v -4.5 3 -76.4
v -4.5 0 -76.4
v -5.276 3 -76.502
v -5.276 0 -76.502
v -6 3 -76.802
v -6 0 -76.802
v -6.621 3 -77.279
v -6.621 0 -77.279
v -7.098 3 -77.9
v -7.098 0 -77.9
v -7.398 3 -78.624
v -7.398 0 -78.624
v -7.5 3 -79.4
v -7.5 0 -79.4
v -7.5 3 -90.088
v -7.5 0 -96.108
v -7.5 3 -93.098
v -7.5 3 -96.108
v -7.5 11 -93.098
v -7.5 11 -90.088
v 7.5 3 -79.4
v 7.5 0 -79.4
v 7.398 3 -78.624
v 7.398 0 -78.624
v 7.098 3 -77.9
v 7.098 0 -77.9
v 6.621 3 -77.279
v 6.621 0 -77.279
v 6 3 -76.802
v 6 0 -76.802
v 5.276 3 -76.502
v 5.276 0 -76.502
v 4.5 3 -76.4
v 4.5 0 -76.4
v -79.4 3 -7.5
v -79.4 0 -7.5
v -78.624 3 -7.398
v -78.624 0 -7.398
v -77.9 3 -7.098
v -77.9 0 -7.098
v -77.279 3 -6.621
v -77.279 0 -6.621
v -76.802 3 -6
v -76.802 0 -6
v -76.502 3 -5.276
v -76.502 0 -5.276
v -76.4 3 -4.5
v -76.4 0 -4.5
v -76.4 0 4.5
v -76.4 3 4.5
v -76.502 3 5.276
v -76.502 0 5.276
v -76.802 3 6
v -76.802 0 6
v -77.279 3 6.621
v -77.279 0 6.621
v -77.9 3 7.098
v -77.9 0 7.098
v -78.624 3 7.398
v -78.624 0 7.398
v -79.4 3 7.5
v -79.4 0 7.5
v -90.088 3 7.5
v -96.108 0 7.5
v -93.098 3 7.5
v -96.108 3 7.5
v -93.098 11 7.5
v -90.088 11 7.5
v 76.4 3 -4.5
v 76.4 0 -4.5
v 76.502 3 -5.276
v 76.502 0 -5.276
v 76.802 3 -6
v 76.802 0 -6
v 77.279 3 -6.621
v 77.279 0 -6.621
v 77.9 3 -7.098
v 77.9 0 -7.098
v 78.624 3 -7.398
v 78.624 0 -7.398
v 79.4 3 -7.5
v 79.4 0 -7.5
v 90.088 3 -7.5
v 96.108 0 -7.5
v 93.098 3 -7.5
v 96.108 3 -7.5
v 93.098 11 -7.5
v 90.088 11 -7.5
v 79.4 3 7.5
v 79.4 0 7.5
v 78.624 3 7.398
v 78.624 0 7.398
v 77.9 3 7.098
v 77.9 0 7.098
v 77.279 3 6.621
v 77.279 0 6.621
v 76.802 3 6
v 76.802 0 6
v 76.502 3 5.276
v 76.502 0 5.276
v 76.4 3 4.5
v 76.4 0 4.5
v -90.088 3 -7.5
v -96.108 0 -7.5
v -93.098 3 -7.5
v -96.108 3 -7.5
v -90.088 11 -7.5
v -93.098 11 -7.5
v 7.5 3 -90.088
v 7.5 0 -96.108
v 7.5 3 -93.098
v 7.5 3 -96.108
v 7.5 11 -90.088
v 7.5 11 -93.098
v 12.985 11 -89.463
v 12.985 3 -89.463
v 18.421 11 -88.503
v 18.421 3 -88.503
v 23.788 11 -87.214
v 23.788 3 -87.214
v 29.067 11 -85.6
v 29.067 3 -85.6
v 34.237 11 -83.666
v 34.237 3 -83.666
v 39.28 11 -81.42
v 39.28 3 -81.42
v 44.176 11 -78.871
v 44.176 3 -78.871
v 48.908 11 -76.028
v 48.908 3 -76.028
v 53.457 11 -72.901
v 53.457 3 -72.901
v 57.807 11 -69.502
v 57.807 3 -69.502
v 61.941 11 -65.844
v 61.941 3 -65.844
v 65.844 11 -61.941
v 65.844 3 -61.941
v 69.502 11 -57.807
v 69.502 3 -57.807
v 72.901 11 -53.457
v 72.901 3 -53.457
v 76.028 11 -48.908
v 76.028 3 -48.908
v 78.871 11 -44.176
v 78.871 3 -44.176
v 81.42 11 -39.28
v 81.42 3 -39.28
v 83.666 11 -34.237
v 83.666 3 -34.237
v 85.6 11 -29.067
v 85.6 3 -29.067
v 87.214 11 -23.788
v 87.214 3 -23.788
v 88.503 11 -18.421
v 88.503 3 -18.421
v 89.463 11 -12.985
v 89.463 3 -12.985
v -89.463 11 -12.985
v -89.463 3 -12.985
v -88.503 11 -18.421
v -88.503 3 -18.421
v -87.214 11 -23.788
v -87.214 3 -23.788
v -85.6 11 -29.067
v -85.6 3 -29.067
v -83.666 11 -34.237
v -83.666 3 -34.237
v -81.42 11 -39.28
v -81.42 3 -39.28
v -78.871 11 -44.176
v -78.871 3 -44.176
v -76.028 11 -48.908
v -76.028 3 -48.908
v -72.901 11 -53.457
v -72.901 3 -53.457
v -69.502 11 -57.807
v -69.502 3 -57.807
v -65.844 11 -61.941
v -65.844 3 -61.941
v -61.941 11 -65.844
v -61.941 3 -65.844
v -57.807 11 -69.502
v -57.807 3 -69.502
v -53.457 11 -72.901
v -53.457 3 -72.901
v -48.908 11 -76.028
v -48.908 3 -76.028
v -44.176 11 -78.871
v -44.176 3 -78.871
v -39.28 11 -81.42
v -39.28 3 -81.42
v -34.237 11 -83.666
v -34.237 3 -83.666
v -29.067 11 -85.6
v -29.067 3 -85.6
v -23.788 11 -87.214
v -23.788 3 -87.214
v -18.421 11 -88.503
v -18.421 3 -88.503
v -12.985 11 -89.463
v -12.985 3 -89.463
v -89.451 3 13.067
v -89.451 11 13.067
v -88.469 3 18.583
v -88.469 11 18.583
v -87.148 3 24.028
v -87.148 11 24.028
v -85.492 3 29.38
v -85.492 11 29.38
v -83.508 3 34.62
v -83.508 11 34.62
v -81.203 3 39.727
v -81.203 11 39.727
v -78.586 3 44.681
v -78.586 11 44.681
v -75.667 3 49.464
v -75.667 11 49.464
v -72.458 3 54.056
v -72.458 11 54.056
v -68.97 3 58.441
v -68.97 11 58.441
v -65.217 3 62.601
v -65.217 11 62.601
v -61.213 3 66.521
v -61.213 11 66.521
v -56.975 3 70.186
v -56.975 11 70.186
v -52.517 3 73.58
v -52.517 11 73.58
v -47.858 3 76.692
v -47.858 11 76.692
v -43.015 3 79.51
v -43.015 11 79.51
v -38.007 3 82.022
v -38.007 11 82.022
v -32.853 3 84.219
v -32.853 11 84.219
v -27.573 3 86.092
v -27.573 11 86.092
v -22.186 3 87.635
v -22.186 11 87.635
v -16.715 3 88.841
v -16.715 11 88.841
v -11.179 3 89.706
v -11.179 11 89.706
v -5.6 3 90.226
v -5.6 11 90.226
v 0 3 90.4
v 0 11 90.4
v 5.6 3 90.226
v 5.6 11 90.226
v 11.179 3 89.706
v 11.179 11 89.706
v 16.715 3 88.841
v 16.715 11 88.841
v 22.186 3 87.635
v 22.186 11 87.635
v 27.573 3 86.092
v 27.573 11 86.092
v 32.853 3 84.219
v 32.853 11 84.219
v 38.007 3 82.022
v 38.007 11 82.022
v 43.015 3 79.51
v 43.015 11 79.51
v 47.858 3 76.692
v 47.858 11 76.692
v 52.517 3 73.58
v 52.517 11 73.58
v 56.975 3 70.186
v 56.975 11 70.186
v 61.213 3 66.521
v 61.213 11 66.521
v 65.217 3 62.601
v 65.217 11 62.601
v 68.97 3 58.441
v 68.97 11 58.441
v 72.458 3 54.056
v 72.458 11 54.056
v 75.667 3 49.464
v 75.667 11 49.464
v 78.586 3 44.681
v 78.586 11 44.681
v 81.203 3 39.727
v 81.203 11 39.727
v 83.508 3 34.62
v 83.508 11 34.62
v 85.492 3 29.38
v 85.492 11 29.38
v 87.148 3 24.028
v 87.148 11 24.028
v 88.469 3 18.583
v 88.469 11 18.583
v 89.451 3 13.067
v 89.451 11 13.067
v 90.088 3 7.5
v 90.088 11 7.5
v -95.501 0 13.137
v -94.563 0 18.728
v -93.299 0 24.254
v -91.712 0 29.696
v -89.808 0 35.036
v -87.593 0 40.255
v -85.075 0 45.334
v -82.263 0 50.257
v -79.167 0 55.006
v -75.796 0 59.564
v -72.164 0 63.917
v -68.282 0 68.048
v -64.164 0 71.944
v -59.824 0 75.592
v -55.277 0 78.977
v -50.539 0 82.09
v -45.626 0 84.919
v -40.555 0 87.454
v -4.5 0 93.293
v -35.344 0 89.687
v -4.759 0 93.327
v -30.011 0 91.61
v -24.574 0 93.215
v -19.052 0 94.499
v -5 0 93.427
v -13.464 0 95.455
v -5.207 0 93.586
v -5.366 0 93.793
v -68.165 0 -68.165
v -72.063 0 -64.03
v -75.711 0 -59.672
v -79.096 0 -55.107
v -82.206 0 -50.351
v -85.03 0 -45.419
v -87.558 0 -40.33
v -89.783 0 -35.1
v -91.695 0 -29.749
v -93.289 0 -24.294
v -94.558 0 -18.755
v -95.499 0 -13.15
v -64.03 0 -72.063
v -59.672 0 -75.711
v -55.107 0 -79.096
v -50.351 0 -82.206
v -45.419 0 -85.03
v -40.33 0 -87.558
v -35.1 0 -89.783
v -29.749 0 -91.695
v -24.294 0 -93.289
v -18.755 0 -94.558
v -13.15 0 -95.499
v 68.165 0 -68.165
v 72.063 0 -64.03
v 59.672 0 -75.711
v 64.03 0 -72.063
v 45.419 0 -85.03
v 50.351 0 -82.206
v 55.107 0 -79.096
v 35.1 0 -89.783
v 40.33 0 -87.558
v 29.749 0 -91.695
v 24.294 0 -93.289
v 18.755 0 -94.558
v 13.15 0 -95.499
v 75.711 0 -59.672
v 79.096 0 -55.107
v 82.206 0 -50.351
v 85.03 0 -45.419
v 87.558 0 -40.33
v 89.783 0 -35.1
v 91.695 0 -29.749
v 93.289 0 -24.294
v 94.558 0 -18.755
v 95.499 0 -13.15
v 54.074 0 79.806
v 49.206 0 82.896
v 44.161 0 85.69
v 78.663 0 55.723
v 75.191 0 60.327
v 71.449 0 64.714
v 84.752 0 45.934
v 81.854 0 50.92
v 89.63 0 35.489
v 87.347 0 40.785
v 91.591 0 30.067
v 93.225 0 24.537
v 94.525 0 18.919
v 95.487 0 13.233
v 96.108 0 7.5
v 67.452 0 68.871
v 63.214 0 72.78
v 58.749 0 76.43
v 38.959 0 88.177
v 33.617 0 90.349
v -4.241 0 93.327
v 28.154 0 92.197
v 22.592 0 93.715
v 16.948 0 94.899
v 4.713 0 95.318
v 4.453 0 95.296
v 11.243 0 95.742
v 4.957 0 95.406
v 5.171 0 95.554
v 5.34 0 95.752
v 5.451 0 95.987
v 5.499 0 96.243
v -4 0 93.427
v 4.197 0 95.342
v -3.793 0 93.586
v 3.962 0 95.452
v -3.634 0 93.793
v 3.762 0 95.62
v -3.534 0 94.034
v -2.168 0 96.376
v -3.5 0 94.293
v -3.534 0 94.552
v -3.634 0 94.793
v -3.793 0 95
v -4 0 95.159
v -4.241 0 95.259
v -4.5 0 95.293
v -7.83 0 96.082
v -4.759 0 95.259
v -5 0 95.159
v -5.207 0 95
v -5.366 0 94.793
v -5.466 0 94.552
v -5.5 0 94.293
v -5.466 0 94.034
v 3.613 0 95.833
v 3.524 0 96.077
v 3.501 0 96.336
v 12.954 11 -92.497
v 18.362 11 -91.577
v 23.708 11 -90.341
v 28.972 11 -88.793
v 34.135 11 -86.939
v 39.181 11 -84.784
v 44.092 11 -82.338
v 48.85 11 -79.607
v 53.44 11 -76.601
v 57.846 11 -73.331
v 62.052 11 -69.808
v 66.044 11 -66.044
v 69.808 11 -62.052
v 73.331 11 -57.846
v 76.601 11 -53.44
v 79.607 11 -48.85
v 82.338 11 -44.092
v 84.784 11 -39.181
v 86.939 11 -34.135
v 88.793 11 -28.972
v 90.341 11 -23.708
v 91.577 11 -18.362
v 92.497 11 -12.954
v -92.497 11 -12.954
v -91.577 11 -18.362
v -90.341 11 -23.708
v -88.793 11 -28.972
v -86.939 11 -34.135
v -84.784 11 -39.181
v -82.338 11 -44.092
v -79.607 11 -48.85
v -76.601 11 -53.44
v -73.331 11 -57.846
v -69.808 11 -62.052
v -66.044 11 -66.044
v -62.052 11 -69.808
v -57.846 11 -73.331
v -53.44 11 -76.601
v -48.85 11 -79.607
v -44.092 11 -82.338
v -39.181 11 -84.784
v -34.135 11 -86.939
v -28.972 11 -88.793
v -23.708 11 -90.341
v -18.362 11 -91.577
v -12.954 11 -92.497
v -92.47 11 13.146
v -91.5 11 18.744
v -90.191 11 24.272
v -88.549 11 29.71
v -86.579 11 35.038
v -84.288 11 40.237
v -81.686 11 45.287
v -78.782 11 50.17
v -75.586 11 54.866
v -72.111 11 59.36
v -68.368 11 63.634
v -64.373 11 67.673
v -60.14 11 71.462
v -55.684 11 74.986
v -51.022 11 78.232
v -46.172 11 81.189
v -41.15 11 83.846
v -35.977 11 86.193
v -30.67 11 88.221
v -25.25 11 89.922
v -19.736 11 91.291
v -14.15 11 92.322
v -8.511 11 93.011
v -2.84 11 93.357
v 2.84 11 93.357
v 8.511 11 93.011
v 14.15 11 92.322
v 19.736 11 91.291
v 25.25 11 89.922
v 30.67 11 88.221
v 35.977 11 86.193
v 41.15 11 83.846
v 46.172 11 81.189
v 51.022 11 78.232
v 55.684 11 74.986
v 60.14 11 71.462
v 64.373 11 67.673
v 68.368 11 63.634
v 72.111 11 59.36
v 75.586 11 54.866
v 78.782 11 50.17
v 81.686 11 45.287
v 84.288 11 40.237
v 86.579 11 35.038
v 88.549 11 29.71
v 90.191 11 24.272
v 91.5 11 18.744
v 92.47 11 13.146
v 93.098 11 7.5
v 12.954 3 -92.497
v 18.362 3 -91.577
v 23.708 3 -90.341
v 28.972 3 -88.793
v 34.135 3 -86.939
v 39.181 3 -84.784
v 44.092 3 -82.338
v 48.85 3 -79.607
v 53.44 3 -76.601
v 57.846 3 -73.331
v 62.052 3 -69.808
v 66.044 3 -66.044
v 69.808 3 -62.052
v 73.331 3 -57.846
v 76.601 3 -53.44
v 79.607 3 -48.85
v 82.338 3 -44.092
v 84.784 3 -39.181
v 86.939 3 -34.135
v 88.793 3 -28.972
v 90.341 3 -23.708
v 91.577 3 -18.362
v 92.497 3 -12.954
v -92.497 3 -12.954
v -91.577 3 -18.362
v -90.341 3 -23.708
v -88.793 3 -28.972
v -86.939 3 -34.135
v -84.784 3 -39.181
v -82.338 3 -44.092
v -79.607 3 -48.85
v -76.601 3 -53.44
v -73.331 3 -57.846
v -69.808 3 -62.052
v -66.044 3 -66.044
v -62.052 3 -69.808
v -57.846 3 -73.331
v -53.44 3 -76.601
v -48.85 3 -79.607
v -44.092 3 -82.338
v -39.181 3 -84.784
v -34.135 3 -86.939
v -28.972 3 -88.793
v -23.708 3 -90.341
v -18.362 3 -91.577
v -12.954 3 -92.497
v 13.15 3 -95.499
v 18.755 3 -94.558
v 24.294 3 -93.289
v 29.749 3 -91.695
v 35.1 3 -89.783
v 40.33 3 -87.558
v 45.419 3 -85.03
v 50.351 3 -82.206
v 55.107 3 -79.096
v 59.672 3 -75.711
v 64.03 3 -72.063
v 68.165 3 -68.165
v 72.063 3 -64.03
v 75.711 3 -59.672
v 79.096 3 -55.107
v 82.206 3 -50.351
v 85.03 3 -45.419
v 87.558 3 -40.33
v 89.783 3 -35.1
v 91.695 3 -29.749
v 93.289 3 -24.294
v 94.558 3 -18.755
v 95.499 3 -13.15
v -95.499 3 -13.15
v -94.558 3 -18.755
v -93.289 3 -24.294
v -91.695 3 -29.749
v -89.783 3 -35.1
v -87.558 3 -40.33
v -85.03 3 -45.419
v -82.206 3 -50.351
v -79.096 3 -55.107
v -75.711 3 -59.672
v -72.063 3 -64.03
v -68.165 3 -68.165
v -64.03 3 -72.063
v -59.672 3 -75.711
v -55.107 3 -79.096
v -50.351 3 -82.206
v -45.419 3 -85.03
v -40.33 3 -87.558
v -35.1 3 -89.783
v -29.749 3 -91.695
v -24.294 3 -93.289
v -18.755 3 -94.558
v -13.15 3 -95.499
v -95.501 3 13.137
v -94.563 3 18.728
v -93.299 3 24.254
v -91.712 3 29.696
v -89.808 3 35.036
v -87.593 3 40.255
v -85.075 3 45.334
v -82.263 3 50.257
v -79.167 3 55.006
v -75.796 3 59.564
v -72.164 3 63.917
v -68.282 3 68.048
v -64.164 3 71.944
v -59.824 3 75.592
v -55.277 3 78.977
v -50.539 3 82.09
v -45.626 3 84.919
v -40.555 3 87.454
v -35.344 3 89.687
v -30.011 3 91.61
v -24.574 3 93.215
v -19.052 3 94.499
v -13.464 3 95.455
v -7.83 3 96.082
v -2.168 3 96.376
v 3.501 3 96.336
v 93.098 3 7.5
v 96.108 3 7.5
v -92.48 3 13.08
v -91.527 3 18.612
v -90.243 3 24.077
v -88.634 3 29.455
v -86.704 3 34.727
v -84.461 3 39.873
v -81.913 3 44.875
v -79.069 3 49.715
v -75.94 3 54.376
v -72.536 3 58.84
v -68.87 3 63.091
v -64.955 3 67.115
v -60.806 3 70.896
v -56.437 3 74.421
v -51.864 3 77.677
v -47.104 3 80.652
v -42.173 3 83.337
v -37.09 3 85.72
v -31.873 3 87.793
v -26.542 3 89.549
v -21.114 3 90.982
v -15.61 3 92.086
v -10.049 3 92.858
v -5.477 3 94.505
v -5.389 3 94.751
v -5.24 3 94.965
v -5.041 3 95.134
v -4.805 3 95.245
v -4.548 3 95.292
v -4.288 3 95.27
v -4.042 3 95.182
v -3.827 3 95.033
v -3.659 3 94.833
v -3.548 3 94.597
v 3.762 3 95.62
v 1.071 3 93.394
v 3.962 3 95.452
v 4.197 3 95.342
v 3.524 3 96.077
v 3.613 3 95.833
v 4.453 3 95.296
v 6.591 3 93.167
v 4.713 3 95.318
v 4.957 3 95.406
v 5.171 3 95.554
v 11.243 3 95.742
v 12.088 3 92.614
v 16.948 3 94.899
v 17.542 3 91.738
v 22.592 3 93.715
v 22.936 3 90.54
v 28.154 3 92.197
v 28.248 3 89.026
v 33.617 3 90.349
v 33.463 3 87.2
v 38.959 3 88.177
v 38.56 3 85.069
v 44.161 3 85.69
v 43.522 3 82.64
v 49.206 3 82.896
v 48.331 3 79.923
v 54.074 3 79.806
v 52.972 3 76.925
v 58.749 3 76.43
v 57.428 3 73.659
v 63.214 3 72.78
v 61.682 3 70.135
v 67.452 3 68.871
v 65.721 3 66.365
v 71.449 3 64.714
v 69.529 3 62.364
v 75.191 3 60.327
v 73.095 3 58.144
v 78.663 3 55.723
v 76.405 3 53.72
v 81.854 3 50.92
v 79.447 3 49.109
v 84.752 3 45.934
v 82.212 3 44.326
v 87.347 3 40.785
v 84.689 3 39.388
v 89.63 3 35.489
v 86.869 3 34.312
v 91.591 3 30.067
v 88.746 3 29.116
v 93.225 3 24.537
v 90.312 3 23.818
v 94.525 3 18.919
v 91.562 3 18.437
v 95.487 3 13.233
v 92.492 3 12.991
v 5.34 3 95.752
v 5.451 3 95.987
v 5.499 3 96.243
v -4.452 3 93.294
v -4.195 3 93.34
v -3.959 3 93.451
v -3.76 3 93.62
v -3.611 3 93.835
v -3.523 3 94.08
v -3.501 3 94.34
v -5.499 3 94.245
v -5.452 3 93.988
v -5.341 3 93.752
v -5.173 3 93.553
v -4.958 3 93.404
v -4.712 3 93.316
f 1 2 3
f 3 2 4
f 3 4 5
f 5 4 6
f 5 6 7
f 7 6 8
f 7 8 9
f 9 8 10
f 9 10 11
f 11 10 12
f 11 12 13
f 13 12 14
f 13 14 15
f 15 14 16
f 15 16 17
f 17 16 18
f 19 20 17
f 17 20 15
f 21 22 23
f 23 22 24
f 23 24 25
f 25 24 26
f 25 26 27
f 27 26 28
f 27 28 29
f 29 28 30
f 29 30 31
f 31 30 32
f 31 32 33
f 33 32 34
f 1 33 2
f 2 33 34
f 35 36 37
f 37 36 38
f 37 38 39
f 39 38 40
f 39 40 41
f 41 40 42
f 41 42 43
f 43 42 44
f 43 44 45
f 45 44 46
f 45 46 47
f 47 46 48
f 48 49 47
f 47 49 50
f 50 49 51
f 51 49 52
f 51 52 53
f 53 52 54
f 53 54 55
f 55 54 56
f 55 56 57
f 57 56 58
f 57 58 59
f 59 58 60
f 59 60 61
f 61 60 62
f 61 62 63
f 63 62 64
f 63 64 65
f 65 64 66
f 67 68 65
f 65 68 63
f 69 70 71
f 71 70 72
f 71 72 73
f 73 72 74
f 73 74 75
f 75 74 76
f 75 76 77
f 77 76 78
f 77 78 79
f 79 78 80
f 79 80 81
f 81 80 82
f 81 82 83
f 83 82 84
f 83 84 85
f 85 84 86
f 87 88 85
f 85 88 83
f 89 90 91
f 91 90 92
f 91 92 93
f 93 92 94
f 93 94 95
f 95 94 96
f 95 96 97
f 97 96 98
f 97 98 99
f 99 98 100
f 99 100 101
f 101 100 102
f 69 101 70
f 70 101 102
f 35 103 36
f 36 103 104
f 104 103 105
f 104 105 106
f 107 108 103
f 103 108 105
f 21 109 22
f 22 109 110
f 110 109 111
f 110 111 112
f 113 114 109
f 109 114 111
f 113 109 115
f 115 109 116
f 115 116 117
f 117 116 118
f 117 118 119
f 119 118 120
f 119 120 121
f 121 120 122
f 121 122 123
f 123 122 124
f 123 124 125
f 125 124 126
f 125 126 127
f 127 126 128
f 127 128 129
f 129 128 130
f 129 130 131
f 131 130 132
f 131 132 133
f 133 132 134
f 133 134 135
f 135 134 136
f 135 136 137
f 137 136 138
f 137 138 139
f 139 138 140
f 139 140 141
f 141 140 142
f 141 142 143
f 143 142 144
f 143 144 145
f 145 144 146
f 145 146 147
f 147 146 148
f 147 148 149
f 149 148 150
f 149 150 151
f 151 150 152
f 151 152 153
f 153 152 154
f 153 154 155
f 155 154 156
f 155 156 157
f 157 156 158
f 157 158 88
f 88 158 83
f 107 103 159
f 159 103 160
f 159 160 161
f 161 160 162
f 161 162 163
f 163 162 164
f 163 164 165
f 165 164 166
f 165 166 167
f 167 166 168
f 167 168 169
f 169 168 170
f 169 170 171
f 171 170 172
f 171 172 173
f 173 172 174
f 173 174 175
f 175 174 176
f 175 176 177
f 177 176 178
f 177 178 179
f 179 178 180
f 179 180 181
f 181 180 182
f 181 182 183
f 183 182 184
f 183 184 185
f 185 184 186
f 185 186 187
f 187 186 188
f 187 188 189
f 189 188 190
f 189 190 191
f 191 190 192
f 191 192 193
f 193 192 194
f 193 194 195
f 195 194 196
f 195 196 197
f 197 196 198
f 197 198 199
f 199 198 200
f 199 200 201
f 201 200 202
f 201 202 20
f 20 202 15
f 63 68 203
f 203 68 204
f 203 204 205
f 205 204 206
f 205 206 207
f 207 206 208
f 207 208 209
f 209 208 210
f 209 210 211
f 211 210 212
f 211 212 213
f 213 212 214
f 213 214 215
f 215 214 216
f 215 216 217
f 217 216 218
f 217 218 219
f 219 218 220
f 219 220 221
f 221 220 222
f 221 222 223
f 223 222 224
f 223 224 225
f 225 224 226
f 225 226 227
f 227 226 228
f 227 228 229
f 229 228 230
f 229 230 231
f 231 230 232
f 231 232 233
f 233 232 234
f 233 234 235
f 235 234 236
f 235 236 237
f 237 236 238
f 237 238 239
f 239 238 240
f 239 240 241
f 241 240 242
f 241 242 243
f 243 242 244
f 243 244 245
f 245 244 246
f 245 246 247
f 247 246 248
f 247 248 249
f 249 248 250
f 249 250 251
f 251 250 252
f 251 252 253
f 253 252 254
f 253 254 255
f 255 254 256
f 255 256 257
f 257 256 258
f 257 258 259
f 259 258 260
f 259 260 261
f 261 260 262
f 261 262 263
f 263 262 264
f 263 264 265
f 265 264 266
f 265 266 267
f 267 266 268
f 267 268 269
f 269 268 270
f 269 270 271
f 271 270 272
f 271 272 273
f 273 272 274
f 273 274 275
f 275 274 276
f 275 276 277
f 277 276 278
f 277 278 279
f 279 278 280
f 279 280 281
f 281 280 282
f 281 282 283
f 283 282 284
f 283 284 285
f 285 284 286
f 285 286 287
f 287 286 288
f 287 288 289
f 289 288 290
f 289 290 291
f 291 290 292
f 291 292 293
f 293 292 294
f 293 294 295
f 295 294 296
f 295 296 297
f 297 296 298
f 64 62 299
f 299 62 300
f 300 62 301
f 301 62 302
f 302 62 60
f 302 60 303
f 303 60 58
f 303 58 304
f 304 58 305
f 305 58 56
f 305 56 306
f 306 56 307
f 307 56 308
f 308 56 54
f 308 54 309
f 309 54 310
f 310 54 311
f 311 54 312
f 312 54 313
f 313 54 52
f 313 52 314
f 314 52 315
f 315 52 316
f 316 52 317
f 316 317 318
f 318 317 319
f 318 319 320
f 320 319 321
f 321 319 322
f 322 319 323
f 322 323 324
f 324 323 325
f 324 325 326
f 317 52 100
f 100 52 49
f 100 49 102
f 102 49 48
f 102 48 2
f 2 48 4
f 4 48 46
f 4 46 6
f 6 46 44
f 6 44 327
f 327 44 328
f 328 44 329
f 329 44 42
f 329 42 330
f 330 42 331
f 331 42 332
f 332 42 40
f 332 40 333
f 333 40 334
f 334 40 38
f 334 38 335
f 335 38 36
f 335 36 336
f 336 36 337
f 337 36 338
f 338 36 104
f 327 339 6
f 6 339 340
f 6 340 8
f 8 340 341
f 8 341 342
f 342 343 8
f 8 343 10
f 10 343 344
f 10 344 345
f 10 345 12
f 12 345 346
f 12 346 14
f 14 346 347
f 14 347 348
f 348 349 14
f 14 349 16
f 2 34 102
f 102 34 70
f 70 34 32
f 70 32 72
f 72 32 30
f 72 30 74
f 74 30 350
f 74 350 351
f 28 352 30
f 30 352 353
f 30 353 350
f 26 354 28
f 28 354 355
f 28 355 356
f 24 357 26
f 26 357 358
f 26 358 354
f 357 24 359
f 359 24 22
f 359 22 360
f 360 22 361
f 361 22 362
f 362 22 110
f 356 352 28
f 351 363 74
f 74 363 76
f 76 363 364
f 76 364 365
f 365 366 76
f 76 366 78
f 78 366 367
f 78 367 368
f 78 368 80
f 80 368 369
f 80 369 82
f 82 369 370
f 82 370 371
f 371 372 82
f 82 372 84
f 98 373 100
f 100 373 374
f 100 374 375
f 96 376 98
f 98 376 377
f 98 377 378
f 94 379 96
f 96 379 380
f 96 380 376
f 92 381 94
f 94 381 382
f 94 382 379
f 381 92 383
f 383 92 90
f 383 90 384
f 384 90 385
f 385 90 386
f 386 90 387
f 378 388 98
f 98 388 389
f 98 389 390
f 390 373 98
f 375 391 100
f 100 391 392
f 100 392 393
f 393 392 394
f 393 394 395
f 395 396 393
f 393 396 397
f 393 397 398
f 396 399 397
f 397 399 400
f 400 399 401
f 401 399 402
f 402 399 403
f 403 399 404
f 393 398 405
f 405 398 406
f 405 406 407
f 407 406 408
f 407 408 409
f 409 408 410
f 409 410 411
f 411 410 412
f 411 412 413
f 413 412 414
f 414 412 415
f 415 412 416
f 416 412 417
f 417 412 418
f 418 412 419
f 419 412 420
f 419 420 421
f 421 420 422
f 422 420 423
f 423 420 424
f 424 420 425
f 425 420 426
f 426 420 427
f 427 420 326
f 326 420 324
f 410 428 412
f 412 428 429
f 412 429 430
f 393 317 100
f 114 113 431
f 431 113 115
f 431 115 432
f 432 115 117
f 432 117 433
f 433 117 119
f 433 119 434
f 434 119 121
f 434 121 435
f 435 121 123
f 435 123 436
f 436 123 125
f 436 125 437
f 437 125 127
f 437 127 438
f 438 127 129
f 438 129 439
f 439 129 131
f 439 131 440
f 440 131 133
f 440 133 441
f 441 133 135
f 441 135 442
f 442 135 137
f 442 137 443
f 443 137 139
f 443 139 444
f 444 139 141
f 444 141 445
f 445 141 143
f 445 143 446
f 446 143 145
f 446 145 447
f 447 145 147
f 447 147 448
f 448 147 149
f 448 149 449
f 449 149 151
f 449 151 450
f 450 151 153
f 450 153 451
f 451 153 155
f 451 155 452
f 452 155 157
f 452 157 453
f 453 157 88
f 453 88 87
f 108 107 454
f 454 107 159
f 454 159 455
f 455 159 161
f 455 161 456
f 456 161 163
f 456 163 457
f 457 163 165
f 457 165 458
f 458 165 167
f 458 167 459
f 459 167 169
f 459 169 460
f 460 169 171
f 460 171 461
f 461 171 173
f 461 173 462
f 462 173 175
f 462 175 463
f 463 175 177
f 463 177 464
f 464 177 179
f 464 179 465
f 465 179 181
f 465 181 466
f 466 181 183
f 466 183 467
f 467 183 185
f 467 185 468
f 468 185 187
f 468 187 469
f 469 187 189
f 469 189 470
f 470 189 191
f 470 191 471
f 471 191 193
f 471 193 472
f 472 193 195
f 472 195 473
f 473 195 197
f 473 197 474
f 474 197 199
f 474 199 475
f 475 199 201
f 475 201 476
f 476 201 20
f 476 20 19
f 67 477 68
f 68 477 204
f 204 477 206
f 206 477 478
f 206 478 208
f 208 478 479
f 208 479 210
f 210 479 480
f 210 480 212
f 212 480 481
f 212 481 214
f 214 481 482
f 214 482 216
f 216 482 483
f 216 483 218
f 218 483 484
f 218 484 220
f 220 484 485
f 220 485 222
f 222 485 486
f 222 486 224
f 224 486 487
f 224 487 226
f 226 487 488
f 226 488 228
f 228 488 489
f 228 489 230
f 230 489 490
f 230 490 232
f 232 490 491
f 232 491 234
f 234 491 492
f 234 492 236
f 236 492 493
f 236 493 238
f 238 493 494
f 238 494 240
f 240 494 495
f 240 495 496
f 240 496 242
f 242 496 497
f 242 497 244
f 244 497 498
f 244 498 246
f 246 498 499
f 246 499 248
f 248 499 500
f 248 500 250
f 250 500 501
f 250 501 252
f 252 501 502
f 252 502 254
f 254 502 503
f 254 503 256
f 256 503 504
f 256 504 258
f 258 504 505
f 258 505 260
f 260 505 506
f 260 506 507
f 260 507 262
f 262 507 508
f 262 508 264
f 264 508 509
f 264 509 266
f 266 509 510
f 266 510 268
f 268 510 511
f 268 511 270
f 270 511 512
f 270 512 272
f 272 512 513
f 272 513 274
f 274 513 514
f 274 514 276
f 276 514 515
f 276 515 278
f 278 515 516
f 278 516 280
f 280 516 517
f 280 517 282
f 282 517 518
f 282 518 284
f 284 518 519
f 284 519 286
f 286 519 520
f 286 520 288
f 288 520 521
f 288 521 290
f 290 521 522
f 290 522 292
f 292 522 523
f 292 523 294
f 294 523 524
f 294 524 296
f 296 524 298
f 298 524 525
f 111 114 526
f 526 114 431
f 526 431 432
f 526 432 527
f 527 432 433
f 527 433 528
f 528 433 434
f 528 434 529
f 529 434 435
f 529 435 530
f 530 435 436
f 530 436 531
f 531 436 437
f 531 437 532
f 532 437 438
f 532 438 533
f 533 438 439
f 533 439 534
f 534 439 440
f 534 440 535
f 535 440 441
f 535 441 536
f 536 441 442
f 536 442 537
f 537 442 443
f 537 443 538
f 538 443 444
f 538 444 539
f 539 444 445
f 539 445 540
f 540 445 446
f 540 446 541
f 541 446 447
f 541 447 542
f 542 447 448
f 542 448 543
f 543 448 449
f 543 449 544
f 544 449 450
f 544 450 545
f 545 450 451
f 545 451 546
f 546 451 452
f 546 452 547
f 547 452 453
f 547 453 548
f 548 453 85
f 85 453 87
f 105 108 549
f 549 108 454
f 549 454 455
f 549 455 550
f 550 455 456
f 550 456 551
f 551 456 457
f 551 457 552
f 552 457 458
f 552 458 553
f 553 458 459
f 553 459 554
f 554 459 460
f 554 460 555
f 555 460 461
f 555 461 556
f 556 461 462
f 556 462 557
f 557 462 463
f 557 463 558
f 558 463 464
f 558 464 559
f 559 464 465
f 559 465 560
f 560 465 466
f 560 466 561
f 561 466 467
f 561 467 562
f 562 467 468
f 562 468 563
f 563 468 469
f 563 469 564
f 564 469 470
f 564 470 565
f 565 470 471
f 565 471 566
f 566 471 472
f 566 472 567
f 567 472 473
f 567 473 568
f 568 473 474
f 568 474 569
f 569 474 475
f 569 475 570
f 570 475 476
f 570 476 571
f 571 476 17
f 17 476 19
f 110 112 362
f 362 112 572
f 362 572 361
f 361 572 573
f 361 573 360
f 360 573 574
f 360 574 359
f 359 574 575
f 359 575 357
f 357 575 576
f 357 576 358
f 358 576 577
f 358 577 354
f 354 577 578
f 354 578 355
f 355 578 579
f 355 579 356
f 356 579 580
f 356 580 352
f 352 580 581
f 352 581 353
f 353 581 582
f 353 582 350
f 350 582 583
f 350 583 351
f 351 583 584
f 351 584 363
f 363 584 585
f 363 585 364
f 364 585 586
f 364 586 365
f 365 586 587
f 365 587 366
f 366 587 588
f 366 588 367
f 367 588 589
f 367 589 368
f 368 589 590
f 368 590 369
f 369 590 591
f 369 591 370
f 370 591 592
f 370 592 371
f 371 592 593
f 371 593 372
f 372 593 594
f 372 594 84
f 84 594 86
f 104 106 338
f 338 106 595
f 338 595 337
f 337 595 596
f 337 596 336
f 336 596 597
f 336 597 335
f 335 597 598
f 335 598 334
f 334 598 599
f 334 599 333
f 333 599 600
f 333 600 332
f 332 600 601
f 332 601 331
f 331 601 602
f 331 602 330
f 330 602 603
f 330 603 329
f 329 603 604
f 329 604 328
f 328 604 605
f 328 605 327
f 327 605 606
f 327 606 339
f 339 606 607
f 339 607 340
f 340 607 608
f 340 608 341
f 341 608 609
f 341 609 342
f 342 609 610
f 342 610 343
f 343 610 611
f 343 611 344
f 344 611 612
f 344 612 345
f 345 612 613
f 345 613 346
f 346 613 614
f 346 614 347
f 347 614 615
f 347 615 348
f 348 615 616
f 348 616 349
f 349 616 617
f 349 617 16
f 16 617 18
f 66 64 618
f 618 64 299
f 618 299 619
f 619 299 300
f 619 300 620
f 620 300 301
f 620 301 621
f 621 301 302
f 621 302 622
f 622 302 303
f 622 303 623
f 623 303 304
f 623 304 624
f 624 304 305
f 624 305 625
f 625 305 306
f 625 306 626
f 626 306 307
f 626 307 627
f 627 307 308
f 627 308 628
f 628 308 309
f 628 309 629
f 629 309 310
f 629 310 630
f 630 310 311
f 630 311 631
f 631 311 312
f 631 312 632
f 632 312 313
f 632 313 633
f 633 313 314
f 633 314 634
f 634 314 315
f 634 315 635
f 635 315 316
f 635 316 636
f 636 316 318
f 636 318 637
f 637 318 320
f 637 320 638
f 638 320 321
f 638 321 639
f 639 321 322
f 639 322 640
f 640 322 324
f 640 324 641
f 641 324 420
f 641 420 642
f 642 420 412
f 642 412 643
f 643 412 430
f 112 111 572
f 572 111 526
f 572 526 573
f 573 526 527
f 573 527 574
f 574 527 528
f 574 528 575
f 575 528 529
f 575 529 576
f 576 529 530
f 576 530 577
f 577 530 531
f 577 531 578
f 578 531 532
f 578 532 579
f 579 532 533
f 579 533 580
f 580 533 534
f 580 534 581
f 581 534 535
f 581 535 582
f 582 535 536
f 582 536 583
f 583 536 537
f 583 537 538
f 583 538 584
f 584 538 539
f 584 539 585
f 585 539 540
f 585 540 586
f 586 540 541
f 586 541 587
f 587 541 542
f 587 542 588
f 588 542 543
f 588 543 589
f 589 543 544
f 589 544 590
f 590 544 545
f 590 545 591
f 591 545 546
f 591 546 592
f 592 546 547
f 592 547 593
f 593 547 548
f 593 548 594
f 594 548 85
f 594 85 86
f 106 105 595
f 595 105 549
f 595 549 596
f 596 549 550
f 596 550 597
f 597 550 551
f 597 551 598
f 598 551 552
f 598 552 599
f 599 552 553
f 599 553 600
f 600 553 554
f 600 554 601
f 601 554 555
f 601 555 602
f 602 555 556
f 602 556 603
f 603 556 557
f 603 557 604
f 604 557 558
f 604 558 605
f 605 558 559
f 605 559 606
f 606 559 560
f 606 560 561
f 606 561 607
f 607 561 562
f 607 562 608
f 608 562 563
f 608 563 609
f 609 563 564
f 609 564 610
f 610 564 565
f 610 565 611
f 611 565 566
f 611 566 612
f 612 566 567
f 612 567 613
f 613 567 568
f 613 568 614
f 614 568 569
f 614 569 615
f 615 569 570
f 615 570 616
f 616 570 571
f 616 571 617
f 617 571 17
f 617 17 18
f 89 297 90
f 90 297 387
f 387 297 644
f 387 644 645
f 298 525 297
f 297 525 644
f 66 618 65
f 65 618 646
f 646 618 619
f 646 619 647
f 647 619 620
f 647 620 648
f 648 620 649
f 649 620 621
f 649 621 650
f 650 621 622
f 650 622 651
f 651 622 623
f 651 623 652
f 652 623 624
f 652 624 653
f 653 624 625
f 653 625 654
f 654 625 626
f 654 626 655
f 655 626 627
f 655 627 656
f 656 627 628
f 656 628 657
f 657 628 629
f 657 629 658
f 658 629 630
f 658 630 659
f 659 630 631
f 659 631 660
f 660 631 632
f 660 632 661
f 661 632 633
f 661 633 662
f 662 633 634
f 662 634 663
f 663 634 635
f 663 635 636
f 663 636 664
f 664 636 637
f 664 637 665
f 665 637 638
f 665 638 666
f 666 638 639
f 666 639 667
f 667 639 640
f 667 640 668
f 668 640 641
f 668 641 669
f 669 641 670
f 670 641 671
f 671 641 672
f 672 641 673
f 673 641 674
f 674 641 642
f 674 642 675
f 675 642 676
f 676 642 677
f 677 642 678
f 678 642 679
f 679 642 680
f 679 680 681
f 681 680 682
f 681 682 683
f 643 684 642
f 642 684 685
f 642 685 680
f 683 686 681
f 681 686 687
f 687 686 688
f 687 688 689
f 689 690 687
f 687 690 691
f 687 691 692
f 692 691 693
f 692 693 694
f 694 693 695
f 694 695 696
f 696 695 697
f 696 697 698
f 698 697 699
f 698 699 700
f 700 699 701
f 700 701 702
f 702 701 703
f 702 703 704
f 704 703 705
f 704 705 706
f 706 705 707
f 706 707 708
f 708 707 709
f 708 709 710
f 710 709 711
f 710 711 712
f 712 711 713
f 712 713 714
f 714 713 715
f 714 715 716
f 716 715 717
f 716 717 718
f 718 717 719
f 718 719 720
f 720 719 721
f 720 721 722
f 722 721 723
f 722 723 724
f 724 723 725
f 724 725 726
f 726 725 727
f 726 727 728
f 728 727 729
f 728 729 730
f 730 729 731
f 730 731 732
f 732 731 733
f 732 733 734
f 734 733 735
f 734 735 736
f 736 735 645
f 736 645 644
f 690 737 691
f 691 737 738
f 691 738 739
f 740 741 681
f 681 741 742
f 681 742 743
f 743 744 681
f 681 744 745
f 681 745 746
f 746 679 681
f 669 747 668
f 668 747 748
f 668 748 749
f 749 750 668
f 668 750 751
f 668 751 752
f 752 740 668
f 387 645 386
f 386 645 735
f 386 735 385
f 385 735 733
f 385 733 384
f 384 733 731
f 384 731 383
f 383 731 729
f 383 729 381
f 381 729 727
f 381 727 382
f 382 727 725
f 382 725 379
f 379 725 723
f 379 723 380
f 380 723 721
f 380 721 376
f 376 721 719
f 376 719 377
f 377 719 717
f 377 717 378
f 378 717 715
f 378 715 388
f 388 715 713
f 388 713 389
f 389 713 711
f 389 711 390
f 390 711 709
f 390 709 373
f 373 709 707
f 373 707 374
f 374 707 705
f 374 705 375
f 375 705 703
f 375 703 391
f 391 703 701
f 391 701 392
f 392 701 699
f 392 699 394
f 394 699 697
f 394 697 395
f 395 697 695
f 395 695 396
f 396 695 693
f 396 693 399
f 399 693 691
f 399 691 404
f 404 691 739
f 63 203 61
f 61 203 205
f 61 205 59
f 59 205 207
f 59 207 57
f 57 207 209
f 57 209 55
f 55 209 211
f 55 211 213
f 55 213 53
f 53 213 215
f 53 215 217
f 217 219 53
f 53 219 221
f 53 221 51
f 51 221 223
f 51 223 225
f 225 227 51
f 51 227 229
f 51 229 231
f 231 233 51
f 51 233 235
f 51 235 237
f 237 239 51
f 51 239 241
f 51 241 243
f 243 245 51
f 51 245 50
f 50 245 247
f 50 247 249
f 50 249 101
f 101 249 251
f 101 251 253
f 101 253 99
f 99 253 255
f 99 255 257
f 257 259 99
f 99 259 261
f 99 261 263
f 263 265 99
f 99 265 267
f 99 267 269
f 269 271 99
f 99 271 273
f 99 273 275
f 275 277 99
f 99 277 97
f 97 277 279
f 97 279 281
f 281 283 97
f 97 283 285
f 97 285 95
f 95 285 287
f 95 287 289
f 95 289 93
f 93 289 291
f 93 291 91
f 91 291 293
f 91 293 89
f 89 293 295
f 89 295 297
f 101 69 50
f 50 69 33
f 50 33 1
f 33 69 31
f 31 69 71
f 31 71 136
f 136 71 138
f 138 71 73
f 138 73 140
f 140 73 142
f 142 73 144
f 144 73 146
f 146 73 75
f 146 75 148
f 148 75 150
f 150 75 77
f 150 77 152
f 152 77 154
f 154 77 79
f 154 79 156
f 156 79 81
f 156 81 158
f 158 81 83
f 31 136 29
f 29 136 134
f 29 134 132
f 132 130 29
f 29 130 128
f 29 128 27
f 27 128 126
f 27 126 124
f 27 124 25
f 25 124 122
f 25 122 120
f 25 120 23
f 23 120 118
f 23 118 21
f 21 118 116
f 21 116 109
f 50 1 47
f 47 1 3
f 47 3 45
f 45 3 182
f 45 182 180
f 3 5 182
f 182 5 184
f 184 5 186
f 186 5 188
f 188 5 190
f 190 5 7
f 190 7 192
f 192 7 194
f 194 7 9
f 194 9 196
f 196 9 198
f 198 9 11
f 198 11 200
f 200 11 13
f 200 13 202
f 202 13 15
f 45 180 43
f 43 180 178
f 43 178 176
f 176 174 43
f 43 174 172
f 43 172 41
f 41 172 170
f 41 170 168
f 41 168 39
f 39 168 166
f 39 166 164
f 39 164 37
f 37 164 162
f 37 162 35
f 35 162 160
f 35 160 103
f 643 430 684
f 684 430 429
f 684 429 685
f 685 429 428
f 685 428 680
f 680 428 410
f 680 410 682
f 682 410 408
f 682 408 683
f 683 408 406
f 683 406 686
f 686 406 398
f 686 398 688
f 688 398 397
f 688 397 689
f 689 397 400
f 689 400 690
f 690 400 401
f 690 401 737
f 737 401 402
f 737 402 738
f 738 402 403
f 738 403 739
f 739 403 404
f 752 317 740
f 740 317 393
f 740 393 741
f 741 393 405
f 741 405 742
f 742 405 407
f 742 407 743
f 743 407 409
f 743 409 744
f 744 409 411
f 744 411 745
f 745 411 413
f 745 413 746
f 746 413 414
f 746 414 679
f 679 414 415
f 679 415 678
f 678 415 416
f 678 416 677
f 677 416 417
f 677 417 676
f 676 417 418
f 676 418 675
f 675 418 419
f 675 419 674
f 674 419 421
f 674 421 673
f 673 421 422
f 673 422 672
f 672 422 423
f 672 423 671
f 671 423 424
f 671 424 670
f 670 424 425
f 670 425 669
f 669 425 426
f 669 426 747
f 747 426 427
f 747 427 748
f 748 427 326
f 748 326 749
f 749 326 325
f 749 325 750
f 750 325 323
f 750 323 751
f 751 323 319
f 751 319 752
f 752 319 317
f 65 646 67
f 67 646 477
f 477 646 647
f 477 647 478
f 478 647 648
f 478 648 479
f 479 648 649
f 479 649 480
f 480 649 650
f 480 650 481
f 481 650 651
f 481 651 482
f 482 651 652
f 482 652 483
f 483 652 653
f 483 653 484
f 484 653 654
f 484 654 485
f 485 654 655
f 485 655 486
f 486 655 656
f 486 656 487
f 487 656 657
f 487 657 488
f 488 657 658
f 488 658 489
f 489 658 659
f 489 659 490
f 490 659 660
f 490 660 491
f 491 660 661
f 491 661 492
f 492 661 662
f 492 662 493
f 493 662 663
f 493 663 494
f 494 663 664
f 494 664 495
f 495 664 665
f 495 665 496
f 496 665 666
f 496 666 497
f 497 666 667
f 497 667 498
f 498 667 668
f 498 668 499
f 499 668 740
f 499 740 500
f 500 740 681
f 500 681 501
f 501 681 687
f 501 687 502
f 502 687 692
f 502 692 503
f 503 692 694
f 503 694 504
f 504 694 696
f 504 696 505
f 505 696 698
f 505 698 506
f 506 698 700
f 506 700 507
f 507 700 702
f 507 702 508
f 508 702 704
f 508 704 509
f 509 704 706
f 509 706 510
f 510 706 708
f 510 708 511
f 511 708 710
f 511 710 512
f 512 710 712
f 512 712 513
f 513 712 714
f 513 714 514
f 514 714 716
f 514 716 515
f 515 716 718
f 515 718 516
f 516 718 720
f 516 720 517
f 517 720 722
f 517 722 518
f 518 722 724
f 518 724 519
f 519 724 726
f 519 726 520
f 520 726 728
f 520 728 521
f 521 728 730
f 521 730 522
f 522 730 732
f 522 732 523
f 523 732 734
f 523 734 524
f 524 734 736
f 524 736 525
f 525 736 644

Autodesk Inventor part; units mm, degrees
ref_plane "YZ Plane" through (0, 0, 0) normal (1, 0, 0) x (0, 1, 0)
ref_plane "XZ Plane" through (0, 0, 0) normal (0, 1, 0) x (-1, 0, 0)
ref_plane "XY Plane" through (0, 0, 0) normal (0, 0, 1) x (1, 0, 0)
sketch "Sketch1" plane through (0, 0, 0) normal (0, 1, 0) x (-1, 0, 0)
  circle A0 centre (0, 0) radius 93.4
  circle A1 centre (0, 0) radius 90.4
  circle A2 centre (0, 0) radius 96.4
  dimension "d0" = 186.8
  dimension "d1" = 3
  dimension "d2" = 3
extrude "Extrusion1" add sketch "Sketch1" along normal blind 11 contours A0
extrude "Extrusion2" add sketch "Sketch1" along normal blind 3 contours A2
sketch "Sketch2" plane through (0, 3, 0) normal (0, 1, 0) x (1, 0, 0)
  circle A0 centre (-4.5, -94.2927) radius 1
  circle A1 centre (0, 0) radius 93.4 projected
  circle A2 centre (0, 0) radius 95.4 construction
  circle A3 centre (4.5, -96.2949) radius 1
  dimension "d7" = 2
  dimension "d8" = 4.5
  dimension "d9" = 4.5
extrude "Extrusion3" cut sketch "Sketch2" against normal up to surface (3 mm away) contours A0 | A3
extrude "Extrusion4" add sketch "Sketch1" along normal blind 3 contours A1
sketch "Sketch3" plane through (0, 0, 0) normal (0, -1, 0) x (1, 0, 0)
  line L0 (96.4, -7.5) -> (76.4, -7.5)
  line L1 (76.4, -7.5) -> (76.4, 7.5)
  line L2 (76.4, 7.5) -> (96.4, 7.5)
  line L3 (96.4, 7.5) -> (96.4, -7.5)
  arc A0 (3.5009, 96.3364) -> (5.4987, 96.2431) centre (0, 0) ccw projected
  point P0 (96.4, 0)
  dimension "d14" = 15
  dimension "d15" = 20
extrude "Extrusion5" cut sketch "Sketch3" against normal up to surface (11 mm away) contours L0 A0 L3 | L0 L1 L2 A0 L3 | A0 L2 L3
pattern_circular "Circular Pattern1" count 3 over 180 about axis through (0, -10, 0) along (0, 1, 0) of "Extrusion5"
fillet "Fillet1" radius 3 6 edges at (76.4, 1.5, 7.5) (76.4, 1.5, -7.5) (-76.4, 1.5, 7.5) (-76.4, 1.5, -7.5) (7.5, 1.5, -76.4) (-7.5, 1.5, -76.4)
properties part number "122mm-CoilForm_3DPrint"
